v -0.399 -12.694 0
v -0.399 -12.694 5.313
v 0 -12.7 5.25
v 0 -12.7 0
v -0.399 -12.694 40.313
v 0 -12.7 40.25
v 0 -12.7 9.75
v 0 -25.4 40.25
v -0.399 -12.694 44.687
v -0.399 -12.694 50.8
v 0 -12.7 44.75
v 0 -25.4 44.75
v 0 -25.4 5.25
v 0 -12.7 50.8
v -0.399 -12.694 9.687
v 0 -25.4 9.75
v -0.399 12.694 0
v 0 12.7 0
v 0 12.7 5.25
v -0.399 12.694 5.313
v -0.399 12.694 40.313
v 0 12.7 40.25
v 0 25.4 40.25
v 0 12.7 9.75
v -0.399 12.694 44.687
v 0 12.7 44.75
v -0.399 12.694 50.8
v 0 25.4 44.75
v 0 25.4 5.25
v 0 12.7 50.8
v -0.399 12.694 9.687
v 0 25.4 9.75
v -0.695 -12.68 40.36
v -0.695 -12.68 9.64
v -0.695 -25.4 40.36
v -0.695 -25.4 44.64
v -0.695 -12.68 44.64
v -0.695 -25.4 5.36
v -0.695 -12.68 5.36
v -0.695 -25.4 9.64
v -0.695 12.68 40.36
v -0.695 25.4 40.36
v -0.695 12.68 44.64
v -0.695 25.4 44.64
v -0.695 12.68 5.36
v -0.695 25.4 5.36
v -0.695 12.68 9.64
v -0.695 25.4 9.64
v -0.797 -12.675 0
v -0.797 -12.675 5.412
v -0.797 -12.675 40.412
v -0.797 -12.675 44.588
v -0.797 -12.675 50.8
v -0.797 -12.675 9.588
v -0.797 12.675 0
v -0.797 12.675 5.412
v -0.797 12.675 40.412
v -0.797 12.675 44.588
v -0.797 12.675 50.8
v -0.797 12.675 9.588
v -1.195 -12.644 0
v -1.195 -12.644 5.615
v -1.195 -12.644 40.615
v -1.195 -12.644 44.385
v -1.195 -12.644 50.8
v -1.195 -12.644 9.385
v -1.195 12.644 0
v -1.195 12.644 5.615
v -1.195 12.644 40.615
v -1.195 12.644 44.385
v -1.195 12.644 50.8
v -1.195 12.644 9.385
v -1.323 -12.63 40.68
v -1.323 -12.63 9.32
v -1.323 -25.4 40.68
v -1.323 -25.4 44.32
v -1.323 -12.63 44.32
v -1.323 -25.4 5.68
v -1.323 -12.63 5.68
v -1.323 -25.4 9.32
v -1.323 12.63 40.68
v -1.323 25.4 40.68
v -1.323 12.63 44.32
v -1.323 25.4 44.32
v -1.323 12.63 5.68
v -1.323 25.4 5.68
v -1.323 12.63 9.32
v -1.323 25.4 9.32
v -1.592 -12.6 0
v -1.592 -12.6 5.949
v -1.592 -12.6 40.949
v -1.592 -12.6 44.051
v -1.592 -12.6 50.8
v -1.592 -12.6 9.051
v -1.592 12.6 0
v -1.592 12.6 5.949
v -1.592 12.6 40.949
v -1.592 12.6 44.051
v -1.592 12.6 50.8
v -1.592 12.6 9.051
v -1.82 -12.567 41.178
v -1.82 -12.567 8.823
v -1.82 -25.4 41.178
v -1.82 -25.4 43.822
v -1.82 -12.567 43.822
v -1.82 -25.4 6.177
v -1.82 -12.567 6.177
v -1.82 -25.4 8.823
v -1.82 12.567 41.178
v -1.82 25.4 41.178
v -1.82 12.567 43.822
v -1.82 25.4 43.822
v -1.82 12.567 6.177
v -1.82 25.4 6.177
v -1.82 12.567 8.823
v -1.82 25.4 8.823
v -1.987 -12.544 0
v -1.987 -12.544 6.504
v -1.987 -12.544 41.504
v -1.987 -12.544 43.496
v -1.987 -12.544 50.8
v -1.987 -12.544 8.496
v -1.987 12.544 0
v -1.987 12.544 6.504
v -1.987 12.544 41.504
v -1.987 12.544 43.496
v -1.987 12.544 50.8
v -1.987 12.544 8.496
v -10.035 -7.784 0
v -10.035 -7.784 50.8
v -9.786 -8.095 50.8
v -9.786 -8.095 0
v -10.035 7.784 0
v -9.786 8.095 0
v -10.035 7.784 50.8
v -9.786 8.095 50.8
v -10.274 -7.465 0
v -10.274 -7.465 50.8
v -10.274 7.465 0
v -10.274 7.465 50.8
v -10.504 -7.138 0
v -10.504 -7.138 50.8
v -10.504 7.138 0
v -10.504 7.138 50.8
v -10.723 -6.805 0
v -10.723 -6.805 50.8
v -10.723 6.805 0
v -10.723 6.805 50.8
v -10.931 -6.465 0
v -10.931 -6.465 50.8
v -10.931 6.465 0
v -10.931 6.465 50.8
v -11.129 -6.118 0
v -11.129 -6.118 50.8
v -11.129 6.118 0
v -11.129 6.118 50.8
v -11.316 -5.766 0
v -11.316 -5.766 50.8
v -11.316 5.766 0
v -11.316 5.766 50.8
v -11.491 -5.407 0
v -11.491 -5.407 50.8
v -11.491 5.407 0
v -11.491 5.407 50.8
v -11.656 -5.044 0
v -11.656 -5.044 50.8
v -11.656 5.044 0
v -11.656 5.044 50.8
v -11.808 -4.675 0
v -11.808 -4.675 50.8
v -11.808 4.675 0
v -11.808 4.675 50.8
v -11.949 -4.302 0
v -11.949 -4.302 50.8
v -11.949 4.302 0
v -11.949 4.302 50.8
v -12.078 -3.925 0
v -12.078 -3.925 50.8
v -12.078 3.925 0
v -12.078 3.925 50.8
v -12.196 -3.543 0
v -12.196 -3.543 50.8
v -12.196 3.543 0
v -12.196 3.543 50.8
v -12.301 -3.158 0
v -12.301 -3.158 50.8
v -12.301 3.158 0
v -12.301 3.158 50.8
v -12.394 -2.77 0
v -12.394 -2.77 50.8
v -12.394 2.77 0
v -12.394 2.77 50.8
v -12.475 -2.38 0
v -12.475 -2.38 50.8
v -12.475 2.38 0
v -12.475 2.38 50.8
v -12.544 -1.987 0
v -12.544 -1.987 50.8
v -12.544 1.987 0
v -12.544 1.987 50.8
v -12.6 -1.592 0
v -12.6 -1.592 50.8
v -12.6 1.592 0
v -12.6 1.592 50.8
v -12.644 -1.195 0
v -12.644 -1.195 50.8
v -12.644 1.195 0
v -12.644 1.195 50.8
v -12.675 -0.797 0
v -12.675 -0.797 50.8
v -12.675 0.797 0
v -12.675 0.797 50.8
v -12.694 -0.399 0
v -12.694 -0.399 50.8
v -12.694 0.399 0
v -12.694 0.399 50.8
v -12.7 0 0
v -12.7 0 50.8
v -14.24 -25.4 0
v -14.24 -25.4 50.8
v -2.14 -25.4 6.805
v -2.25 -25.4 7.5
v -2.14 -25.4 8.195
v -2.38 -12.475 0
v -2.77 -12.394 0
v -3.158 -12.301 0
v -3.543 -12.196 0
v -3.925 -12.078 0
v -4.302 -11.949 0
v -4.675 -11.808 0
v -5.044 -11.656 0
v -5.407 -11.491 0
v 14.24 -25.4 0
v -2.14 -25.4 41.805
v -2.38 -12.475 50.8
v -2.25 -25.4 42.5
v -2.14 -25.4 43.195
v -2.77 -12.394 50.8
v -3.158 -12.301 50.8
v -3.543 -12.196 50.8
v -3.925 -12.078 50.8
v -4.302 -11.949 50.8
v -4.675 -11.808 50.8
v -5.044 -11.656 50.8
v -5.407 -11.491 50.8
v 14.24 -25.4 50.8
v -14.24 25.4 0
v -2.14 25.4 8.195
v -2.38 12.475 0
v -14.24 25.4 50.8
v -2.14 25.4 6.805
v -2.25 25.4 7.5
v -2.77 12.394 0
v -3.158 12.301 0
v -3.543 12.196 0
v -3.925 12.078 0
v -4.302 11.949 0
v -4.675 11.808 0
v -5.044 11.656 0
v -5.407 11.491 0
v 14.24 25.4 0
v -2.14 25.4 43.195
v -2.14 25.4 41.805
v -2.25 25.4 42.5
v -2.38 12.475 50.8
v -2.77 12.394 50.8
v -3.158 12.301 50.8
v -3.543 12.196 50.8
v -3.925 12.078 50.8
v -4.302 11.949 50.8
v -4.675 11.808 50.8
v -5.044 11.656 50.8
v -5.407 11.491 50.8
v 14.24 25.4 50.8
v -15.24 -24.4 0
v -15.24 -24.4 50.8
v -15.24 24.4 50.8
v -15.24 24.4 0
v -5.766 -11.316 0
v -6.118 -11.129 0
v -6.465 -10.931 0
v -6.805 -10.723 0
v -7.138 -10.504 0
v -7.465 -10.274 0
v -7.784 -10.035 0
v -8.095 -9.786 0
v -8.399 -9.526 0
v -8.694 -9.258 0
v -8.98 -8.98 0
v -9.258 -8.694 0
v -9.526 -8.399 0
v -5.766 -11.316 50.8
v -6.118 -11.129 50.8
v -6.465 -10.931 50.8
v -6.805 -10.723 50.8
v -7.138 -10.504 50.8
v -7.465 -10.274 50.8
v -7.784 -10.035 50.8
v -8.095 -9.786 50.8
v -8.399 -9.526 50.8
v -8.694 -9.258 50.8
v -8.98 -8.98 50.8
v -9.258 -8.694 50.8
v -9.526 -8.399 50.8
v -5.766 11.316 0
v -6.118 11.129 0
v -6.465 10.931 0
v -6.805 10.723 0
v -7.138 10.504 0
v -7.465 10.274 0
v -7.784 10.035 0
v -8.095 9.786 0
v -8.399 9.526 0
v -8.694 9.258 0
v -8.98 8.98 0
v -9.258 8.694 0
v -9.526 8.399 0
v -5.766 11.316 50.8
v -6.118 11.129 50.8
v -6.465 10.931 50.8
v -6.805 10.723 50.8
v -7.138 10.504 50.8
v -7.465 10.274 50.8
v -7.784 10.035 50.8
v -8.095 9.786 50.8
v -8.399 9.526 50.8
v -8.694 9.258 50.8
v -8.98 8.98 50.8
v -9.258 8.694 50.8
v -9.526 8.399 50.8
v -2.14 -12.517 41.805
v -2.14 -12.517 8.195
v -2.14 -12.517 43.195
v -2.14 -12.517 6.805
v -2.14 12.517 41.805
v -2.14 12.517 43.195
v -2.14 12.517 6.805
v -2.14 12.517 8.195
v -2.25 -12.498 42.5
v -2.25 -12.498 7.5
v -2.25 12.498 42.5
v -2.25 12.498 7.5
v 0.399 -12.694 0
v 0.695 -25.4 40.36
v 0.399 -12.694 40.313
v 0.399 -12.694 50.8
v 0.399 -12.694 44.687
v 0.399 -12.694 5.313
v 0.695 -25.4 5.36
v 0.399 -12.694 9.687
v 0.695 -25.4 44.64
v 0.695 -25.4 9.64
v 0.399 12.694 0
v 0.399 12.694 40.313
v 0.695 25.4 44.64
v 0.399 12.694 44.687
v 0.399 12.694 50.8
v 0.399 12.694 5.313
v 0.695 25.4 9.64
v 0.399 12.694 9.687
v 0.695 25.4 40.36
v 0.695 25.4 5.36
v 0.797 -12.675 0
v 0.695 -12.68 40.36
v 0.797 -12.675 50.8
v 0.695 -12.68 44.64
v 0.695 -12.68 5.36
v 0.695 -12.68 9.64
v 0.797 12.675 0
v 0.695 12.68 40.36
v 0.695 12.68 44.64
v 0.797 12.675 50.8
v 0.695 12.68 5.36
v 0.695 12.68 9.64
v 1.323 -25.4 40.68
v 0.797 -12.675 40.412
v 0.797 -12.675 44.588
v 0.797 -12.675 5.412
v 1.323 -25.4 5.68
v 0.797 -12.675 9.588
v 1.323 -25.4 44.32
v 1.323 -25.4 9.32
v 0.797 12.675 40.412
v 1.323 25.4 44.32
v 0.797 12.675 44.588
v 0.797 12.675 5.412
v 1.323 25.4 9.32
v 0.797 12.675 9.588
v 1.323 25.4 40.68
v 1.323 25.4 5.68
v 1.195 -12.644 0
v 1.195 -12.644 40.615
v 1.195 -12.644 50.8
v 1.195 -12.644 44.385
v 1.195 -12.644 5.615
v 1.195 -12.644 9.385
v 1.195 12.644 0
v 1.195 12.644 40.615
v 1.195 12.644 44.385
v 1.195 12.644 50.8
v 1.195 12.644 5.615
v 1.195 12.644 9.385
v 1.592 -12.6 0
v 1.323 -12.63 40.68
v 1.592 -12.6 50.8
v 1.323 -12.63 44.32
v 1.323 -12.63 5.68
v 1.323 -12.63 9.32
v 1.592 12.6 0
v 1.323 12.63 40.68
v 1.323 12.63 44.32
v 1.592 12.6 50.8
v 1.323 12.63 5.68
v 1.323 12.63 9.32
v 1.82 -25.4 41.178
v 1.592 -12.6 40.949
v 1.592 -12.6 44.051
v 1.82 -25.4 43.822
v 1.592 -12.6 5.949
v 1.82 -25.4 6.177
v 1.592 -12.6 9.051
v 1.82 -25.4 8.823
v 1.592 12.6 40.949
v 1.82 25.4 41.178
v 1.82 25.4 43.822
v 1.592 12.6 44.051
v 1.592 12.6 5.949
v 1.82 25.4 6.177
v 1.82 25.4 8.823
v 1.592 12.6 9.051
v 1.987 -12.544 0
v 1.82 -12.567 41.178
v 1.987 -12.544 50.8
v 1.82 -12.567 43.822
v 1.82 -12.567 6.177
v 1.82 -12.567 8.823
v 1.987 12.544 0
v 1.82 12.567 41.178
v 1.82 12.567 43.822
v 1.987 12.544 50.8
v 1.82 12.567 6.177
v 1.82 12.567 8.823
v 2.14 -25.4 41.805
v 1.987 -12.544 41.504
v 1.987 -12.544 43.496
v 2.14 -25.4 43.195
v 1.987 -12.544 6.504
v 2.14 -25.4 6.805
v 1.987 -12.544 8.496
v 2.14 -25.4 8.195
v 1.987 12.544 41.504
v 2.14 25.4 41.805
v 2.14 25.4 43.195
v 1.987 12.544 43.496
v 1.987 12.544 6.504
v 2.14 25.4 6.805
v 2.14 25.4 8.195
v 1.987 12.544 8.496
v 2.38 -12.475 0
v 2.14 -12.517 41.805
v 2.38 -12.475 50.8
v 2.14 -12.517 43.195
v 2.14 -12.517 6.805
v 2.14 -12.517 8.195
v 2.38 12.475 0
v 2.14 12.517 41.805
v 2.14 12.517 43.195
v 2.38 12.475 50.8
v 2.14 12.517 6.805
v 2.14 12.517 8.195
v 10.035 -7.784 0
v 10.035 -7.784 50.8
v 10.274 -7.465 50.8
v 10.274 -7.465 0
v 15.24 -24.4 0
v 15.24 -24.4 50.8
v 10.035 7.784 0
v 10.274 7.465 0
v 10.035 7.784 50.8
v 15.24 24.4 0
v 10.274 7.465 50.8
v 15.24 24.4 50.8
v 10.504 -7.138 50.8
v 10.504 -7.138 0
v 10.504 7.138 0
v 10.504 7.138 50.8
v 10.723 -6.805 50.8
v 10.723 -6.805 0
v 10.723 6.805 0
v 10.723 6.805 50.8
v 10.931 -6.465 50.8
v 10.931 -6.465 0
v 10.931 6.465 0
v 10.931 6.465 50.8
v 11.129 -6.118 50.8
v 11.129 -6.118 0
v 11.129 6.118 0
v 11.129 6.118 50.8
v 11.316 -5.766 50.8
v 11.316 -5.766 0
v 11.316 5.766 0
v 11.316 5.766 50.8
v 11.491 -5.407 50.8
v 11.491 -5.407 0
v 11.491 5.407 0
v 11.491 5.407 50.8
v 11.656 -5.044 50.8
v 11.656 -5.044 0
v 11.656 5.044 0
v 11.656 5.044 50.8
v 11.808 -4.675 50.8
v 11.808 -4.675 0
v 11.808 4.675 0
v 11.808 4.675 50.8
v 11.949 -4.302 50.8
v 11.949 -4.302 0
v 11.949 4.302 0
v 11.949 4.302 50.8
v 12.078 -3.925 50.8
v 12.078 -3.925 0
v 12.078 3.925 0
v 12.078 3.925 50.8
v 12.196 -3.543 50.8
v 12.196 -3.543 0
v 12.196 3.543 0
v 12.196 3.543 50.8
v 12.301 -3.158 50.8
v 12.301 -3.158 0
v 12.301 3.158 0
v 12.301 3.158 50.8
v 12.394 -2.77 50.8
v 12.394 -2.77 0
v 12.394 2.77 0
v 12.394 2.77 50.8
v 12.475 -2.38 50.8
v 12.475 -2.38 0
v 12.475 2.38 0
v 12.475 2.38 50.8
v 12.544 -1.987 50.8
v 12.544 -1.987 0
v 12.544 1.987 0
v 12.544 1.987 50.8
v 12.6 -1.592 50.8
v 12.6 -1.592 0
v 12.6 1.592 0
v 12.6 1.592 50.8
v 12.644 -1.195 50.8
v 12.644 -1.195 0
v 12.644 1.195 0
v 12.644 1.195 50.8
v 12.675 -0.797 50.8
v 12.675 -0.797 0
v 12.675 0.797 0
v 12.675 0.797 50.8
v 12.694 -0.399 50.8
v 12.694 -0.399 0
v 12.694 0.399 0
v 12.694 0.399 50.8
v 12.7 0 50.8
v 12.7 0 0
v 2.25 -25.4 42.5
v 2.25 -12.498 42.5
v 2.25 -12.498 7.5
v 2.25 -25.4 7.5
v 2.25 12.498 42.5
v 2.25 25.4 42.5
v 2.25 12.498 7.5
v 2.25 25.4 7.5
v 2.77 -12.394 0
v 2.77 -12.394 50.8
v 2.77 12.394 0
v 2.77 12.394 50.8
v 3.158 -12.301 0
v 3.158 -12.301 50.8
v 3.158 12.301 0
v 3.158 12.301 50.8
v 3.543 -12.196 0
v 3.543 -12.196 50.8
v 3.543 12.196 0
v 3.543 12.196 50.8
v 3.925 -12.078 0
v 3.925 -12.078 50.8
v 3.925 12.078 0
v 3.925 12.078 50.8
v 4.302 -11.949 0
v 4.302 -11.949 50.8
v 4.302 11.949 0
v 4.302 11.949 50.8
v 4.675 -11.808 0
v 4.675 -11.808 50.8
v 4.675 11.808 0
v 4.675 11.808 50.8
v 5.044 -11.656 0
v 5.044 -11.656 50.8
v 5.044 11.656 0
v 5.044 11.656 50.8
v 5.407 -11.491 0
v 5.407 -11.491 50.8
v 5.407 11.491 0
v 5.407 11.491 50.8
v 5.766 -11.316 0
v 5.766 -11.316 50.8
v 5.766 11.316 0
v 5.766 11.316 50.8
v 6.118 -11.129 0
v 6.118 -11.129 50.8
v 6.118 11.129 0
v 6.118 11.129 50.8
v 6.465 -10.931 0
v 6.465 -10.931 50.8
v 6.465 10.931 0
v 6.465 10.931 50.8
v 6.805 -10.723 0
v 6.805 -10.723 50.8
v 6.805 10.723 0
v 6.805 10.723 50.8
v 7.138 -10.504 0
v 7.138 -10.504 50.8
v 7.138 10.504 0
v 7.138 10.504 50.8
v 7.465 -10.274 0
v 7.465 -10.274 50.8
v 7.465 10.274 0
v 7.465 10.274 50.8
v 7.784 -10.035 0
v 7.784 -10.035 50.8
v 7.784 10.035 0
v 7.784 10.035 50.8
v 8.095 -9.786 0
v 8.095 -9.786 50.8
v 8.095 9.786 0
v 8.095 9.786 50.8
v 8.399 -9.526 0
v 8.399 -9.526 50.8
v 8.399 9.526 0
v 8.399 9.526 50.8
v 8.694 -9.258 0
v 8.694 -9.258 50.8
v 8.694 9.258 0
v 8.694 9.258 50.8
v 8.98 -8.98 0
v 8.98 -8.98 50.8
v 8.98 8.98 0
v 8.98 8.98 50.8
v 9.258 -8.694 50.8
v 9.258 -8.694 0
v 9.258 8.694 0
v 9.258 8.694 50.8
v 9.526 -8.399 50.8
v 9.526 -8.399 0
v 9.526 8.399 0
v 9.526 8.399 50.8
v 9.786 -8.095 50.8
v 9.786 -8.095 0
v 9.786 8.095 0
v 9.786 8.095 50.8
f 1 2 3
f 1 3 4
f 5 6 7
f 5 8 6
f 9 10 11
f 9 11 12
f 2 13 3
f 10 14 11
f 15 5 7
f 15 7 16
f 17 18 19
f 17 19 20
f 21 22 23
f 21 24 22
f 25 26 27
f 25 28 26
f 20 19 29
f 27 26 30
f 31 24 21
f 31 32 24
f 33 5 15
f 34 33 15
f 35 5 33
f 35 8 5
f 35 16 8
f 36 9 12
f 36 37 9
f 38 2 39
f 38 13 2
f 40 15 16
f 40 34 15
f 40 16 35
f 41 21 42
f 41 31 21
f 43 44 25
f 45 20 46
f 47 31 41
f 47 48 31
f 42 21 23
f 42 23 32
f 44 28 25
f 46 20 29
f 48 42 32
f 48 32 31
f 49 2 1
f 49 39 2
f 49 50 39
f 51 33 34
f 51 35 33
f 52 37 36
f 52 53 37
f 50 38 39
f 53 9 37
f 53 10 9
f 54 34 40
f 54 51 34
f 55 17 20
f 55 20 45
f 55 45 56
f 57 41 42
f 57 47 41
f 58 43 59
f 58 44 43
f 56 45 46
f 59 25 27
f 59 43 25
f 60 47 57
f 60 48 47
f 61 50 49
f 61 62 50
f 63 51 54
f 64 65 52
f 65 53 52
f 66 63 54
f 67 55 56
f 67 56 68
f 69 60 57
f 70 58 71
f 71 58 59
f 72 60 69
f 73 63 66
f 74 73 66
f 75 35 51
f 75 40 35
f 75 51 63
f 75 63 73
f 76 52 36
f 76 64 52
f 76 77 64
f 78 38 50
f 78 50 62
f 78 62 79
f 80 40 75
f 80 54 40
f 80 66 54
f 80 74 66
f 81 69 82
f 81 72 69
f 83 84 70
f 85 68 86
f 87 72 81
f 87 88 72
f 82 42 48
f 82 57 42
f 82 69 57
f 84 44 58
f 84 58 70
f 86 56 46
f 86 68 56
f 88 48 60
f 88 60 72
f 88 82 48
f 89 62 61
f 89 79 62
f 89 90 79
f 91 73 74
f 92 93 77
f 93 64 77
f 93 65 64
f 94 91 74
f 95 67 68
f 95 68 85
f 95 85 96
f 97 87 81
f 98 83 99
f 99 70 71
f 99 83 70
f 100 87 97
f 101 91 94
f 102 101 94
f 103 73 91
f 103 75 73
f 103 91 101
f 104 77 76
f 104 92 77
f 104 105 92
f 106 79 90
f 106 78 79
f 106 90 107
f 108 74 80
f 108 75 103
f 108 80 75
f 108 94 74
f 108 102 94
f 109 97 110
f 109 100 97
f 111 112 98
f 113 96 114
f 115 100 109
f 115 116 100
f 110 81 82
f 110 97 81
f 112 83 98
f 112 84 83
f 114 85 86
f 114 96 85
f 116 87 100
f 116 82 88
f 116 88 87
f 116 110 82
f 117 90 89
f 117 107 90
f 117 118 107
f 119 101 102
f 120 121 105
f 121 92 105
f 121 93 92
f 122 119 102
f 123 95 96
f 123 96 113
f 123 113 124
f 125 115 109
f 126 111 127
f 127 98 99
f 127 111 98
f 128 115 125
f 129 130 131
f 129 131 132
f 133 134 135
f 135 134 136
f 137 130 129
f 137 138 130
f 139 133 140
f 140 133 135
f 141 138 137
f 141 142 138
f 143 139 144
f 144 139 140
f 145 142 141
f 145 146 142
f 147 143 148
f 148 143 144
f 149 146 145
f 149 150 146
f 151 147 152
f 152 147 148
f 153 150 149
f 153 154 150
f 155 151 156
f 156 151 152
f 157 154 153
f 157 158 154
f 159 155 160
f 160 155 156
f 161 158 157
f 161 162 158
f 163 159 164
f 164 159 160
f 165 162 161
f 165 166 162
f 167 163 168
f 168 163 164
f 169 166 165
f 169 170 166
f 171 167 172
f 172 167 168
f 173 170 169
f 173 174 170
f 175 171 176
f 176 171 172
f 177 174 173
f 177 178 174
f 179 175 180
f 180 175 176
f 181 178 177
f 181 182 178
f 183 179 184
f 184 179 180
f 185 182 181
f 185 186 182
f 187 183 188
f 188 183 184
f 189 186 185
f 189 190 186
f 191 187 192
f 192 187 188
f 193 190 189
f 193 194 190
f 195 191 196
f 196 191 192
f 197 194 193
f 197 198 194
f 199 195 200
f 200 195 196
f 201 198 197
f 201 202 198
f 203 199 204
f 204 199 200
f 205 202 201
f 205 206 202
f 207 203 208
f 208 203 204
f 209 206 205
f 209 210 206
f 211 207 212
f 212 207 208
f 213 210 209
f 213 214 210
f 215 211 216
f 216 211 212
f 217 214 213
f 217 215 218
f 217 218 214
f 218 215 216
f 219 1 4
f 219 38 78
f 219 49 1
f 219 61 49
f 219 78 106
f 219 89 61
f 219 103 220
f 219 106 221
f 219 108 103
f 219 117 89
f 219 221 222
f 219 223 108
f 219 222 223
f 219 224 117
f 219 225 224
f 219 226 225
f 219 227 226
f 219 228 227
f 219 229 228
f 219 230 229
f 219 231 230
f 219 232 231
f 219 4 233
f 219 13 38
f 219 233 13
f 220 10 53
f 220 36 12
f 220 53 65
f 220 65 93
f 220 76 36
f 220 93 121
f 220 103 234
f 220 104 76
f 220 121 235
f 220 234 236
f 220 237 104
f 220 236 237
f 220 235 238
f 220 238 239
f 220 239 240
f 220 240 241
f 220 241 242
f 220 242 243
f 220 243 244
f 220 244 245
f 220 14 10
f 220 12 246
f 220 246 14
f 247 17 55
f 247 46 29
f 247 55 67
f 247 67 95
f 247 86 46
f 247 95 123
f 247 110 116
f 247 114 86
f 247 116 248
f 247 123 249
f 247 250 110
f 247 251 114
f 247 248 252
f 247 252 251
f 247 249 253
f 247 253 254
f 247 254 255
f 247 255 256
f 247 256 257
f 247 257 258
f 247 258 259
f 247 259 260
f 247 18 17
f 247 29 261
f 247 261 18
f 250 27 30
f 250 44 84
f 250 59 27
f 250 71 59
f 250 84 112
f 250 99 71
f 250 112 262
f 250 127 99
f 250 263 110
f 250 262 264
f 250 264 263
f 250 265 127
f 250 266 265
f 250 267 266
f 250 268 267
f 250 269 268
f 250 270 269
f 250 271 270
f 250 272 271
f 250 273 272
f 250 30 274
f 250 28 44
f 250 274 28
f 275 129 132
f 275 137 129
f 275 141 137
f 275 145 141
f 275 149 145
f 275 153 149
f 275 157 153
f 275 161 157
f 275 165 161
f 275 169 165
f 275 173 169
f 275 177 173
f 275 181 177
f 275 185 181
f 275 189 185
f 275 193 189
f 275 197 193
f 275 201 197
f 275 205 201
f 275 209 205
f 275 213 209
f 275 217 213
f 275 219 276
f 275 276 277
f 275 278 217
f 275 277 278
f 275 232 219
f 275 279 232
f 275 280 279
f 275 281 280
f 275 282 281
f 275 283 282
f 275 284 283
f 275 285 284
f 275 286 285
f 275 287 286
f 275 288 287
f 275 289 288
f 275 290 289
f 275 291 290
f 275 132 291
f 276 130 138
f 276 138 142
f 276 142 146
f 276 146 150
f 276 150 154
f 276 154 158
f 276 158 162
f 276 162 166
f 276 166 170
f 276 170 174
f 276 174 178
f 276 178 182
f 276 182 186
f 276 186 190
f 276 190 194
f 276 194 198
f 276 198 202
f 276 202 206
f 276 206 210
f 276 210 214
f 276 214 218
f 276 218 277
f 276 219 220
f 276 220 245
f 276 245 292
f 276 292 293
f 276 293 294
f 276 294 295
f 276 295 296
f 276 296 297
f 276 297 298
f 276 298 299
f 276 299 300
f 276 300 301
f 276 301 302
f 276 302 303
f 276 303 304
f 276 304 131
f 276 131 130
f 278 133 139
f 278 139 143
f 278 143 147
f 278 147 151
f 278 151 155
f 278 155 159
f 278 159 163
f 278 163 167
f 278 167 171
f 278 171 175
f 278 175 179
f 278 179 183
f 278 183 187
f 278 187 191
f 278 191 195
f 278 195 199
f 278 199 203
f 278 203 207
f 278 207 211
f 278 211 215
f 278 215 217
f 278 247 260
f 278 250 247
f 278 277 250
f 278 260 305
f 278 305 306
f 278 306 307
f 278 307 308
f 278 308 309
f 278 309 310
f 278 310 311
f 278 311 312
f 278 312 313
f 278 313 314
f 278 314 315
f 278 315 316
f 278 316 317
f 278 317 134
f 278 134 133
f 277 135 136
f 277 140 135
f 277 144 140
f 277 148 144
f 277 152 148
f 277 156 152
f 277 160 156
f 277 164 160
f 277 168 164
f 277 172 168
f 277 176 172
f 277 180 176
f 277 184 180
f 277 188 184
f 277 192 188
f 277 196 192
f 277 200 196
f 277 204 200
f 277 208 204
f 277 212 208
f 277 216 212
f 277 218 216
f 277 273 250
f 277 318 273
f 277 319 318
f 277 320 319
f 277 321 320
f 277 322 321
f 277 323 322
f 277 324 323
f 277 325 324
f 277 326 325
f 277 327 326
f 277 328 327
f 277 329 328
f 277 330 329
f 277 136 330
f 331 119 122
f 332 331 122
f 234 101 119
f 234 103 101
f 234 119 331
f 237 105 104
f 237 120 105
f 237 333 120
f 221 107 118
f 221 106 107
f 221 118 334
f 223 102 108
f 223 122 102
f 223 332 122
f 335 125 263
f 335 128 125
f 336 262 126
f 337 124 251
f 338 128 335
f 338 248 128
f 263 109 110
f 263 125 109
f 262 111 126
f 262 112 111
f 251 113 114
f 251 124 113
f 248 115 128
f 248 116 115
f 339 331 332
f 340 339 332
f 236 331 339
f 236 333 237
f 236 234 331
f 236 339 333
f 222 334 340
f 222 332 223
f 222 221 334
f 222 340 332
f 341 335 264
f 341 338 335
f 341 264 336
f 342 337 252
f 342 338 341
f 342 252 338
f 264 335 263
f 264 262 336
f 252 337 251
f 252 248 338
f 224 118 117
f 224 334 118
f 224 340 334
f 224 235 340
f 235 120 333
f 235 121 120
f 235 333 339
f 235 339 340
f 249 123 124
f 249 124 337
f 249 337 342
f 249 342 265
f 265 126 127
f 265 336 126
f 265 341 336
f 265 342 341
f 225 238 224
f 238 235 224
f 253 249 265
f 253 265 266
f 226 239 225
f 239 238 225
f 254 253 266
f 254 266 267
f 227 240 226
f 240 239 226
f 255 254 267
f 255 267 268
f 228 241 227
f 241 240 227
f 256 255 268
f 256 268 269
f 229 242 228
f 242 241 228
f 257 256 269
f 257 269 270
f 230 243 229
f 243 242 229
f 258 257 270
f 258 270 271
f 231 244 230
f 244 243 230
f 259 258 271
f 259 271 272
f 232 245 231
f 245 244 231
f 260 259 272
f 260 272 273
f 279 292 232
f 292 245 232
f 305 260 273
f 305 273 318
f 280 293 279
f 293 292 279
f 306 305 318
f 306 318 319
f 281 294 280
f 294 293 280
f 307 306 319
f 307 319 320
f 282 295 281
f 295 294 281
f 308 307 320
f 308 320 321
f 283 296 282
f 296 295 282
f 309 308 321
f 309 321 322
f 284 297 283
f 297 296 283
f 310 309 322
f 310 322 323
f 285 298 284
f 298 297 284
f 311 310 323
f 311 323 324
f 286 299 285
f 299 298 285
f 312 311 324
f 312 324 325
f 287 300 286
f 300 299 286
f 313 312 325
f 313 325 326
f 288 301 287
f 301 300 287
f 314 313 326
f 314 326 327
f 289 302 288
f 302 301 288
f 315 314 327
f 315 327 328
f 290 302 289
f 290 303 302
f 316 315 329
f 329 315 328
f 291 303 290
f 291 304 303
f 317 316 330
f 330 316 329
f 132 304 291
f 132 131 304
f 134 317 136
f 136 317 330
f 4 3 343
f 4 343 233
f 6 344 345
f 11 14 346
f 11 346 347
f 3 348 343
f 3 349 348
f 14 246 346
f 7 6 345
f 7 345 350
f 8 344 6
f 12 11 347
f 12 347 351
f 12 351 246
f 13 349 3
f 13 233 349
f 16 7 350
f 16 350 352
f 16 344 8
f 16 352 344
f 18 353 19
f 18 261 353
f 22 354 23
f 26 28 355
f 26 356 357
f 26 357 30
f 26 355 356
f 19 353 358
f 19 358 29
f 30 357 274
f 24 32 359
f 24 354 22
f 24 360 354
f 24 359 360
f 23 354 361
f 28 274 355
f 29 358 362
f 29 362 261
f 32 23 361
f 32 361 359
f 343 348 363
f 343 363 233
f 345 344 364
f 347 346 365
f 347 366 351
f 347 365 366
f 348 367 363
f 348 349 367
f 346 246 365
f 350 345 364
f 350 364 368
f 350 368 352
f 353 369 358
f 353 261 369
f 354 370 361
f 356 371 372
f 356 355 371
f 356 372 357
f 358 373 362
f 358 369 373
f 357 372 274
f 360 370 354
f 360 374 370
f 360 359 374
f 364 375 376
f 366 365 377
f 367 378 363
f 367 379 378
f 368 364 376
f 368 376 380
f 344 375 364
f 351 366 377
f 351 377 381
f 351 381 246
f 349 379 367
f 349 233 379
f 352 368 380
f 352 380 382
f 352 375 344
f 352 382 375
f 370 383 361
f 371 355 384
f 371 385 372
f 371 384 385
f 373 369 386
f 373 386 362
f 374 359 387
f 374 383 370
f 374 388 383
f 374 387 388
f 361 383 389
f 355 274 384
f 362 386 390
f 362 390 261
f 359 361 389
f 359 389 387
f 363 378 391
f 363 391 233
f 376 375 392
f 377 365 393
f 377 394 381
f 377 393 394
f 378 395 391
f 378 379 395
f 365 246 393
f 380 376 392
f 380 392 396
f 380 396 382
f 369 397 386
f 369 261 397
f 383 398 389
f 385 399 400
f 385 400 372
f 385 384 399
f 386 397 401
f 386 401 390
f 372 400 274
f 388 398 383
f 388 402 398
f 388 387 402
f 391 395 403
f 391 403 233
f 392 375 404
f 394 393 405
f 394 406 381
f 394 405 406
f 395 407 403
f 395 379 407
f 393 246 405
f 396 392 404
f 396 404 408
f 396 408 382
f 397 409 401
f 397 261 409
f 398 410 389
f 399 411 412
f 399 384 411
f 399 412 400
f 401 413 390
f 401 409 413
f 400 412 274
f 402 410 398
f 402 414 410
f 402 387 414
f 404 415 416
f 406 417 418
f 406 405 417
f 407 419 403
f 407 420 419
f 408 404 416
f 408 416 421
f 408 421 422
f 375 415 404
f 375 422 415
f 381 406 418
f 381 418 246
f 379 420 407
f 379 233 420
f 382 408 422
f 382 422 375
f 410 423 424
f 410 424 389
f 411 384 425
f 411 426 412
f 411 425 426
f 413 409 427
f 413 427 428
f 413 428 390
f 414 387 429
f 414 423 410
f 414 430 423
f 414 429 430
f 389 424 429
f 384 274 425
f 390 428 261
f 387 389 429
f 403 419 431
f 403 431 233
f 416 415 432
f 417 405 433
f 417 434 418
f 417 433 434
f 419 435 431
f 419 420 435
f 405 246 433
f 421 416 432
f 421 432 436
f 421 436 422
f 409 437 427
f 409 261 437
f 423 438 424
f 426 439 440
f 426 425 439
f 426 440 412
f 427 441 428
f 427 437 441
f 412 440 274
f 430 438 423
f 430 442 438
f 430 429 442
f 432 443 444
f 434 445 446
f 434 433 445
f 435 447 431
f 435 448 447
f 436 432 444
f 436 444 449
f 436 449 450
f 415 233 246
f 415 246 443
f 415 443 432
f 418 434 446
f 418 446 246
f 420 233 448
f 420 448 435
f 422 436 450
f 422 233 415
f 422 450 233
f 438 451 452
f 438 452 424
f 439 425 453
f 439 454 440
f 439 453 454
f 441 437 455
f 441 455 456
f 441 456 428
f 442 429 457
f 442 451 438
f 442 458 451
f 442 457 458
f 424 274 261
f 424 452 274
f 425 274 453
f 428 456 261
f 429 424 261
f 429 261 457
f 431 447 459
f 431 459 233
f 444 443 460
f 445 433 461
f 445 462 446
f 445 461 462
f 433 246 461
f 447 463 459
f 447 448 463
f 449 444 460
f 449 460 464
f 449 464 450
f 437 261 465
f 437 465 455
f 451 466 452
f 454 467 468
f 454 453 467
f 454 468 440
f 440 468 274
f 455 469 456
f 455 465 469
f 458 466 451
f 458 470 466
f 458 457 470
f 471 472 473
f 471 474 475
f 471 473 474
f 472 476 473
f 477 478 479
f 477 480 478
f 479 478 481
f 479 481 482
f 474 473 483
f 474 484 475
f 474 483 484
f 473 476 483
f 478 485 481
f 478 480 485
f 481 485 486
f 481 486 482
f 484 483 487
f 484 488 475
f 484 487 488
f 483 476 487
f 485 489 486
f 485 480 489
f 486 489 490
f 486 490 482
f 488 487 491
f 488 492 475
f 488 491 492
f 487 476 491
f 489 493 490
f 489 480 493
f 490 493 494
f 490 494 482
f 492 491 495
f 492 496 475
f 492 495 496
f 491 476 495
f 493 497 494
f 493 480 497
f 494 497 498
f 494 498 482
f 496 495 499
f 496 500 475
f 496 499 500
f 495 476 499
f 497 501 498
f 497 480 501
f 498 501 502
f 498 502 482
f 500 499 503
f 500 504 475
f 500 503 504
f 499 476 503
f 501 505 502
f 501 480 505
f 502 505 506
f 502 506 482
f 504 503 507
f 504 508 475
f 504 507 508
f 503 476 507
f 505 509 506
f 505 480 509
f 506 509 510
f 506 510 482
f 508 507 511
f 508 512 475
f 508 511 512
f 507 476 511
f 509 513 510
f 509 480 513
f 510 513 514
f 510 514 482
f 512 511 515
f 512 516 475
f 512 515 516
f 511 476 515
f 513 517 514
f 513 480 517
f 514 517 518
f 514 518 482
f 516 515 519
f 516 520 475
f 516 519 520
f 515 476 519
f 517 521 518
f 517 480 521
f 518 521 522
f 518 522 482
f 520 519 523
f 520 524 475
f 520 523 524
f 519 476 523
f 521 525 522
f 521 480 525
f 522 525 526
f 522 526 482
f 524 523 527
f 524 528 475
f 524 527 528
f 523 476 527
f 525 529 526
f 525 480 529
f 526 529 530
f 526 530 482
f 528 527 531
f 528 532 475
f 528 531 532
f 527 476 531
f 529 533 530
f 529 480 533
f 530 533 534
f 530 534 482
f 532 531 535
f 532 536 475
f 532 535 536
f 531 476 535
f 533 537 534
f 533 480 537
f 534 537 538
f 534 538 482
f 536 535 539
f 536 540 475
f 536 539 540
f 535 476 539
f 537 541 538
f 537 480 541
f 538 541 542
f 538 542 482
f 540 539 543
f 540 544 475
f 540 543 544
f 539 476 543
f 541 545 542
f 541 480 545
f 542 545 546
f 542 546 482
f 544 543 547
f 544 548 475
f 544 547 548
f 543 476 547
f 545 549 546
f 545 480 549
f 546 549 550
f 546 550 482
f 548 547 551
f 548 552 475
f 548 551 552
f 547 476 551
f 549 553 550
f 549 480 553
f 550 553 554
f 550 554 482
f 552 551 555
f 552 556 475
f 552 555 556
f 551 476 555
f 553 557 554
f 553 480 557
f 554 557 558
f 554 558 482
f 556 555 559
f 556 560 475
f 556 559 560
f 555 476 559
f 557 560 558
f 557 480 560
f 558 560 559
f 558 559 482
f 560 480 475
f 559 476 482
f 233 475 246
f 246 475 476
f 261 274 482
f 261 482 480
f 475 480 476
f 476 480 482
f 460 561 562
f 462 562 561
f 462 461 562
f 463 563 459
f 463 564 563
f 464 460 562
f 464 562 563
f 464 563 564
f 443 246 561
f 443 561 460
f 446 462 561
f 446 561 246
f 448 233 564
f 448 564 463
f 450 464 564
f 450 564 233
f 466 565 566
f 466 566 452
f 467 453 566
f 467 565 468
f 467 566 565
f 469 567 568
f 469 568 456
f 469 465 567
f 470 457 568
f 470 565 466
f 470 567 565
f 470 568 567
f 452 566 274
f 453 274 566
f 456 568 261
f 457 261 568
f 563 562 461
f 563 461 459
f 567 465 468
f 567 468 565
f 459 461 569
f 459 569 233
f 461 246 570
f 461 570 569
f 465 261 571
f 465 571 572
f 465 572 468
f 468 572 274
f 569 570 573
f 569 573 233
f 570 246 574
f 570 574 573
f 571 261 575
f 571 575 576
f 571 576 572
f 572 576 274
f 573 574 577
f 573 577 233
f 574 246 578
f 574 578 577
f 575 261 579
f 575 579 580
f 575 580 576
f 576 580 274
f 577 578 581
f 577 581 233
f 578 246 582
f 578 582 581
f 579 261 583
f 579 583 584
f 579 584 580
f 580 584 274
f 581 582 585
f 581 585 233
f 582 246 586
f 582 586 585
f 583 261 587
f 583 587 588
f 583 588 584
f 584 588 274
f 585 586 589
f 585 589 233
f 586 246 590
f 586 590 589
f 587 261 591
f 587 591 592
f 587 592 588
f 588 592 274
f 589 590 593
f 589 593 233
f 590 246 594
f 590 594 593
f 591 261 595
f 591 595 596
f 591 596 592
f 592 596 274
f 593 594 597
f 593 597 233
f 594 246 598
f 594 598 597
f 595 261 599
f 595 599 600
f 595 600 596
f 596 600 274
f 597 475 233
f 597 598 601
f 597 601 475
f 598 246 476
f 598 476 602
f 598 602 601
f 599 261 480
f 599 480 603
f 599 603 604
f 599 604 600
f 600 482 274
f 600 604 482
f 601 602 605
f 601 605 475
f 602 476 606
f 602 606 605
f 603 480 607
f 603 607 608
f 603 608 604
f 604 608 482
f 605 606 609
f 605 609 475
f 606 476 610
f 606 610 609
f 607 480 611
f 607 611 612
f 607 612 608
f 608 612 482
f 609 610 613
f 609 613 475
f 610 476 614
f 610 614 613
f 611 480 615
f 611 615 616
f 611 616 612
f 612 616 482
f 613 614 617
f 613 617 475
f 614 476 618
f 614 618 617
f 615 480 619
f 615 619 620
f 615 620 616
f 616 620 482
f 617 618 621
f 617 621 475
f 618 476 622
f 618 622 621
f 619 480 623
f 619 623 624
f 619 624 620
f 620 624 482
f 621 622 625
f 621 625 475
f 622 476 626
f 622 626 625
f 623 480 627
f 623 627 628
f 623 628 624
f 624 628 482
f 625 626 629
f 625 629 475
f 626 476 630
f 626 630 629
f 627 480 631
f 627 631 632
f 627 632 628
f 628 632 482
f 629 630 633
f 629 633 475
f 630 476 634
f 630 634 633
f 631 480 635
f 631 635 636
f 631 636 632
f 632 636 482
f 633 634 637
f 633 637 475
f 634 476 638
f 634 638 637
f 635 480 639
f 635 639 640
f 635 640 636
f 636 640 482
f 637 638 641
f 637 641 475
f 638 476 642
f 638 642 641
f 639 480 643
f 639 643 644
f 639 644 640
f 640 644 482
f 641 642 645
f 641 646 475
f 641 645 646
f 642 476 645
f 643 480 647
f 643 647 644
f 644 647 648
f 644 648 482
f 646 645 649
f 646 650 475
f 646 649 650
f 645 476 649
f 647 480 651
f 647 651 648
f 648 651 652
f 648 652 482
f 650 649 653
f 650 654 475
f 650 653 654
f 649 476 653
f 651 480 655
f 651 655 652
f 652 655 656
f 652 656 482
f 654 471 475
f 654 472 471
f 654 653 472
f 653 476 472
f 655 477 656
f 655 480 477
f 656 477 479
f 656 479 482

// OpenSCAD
// file: ../Parameters.scad
//Main tube diameter - hole [mm]
main_tube_outer_diameter = 25.4;
main_tube_inner_diameter = 23.5;

//Tube for undercarriage - hole [mm]
tube_for_undercarriage_outer_diameter = 10.6;
tube_for_undercarriage_inner_diameter = 6;
global_clearance = 0.5;


//umístění podvozkových trubek

second_undercarriage_hole = main_tube_outer_diameter*2 + main_tube_outer_diameter/5 + main_tube_outer_diameter/2 + 170 + 160;

// Parameters of cube couplings
coupling_wall_thickness = main_tube_outer_diameter/5;  //width of coupling walls 
thickness_between_tubes = main_tube_outer_diameter/10;    // minimum distance between tubes in couplings

coupling_wall_thickness_undercarriage = tube_for_undercarriage_outer_diameter/3;
thickness_between_tubes_undercarriage = tube_for_undercarriage_outer_diameter/10;

//Screw diameter and nut for M4 [mm]
M4_screw_diameter=4.5;
Nut_height_M4 = 3.2;
Nut_diameter_M4 = 7.86;


//Screw diameter and nut for M3 [mm]
M3_screw_diameter = 3.2;
Nut_height_M3 = 1.7;	
Nut_diameter_M3 = 6.6; 


//The tube for help
Help_main_tube_outer = 25;
Help_main_tube_inner = 23; 
Help_tube_for_undercarriage_outer = 10;
Help_tube_for_undercarriage_inner = 5;


//main hull parameters

hull_drop_length = 580;
hull_wall_thickness = 0.8;
hull_y_size = 120;
hull_z_size = 150;
hull_x_size = 580;
hull_corner_radius = 4;
hull_airfoil_thickness= 35;  // thickness of drop generating airfoil in percent of lenght.
hull_scale_x = 1;
hull_scale_y = 1.5;
hull_scale_z = 1.5;

main_pilon_position = 170+68;
cover_pilon_position = 180;
height_of_vertical_tube = 275; //278mm je změřená délka trubky. 

ribbon_width = 5; // šířka vyztužovacích lemů. 

// šířka otvoru v přední části kapoty pro držák motoru.
width_of_engine_holder = 63;

//Top Cover Division - dělení horního krytu pro tisk
top_cover_division = [0, 50, 150, 280, 410, hull_x_size]; // upraveny seznam tak, aby deleni začinalo od nuly, což umožňí úplně automatické rozdělení.

//Bottom Cover Division - dělení dolního krytu pro tisk
bottom_cover_division = [0,100,250,365, 470, hull_x_size];
// zkrácená část pro payload pro testovací tisk
//bottom_cover_division = [0,200,250,365, 470, hull_x_size];

//Base Divison - dělení podložky
base_division = [0,140,280,410, hull_x_size];

//Cover pilon division - na výšku (v ose Z)
cover_pilon_division = [0,170,height_of_vertical_tube + main_tube_outer_diameter + coupling_wall_thickness];

//pozice šroubů
	//horní kryt
top_screw_position = [0, (top_cover_division[0] + top_cover_division[1])/4, (top_cover_division[2] - top_cover_division[1])/2 + top_cover_division[1], (top_cover_division[3] - top_cover_division[2])/2 + top_cover_division[2],(top_cover_division[4] - top_cover_division[3])/2 + top_cover_division[3],(top_cover_division[5] - top_cover_division[4])/2 + top_cover_division[4] - 20];
	//spodní kryt
bottom_screw_position = [0,(bottom_cover_division[0] + bottom_cover_division[1])/15 + 5, bottom_cover_division[1]/1.1, + bottom_cover_division[3], bottom_cover_division[3] + bottom_cover_division[1]/2, bottom_cover_division[4] - 6*global_clearance, bottom_cover_division[4] + bottom_cover_division[1]/2.5];




//šířka zámků
lock_width = 10;

//délka zámků
lock_length = 3;


//accumulator
//základní rozměry akumulátoru
width_of_accumulator = 129.4;//45+1;
depth_of_accumulator = 40.61;
height_of_accumulator = 43.65;
//Zapuštění akumulátoru
sink_of_accumulator = 5; //main_tube_outer_diameter/5 - Nut_height_M3*1.5;

//tloušťka hrany spojky
accumulator_holder_width = 18; 
accumulator_holder_thickness = 10; 

//posunutí akumálátoru na podložce
move_of_accumulator = 165;   // pozice akumulátoru (ovlivňuje těžiště)


////////////////
// Senzory
///////////////////

//opticalFlow
    width_optical_flow_senzor = 45.5;
    depth_optical_flow_senzor = 6;
    height_optical_flow_senzor = 35;
    sink_of_optical_flow_senzor = depth_optical_flow_senzor - 5; 
    M3_optical_flow_senzor_Z = 30.4;
    M3_optical_flow_senzor_X = 24;
    M3_optical_flow_senzor_Z_alone = 9.1;
    M3_optical_flow_senzor_X_alone = 16.7;
// main file
include <../Parameters.scad>

module 666_1026(){

radius=main_tube_outer_diameter/2;
wall_thickness=main_tube_outer_diameter/10;
width=main_tube_outer_diameter+2*wall_thickness;	
depth=main_tube_outer_diameter*2;
height=depth;


c_na_druhou=width*width+width*width;
uhlopricka=sqrt(c_na_druhou);
c2_na_druhou=(depth/2*depth/2)+(depth/2*depth/2);
uhlopricka_2=sqrt(c2_na_druhou);

M4_screw_radius=M4_screw_diameter/2;
wall_thickness_M4_cylinder_X = M4_screw_radius;
stred_M4_cylinder_X = width/2 - M4_screw_radius * 2;
stred_M4_cylinder_Z_horni = height - M4_screw_radius - M4_screw_diameter*0.75;
stred_M4_cylinder_Z_dolni = M4_screw_radius + M4_screw_diameter*2;

difference (){

translate([-(width/2),-(depth/2),0])
cube ([width,depth,height]);
	
	//tube
	translate([0,0,-3])
	cylinder(h=height+6,r1=radius,r2=radius,$fn=200);

	//screw
	translate([0,depth/2+3,7.5])
	rotate([90,0,0])
	cylinder(h=depth+6, r1=M4_screw_radius, r2 = M4_screw_radius, $fn=20);


	translate([0,depth/2+3,42.5])
	rotate([90,0,0])
	cylinder(h=depth+6, r1=M4_screw_radius, r2 = M4_screw_radius, $fn=20);
	
	//bevelled edge

	translate([width/2,depth/2-1,-3])
	rotate([0,0,45])
	cube([depth/2,depth/2,height+6]);

	translate([-(width/2),depth/2-1,-3])
	rotate([0,0,45])
	cube([depth/2,depth/2,height+6]);

	translate([-(width/2),-uhlopricka_2-depth/2+1,-3])
	rotate([0,0,45])
	cube([depth/2,depth/2,height+6]);

	translate([width/2,-uhlopricka_2-depth/2+1,-3])
	rotate([0,0,45])
	cube([depth/2,depth/2,height+6]);
}
}


666_1026();
